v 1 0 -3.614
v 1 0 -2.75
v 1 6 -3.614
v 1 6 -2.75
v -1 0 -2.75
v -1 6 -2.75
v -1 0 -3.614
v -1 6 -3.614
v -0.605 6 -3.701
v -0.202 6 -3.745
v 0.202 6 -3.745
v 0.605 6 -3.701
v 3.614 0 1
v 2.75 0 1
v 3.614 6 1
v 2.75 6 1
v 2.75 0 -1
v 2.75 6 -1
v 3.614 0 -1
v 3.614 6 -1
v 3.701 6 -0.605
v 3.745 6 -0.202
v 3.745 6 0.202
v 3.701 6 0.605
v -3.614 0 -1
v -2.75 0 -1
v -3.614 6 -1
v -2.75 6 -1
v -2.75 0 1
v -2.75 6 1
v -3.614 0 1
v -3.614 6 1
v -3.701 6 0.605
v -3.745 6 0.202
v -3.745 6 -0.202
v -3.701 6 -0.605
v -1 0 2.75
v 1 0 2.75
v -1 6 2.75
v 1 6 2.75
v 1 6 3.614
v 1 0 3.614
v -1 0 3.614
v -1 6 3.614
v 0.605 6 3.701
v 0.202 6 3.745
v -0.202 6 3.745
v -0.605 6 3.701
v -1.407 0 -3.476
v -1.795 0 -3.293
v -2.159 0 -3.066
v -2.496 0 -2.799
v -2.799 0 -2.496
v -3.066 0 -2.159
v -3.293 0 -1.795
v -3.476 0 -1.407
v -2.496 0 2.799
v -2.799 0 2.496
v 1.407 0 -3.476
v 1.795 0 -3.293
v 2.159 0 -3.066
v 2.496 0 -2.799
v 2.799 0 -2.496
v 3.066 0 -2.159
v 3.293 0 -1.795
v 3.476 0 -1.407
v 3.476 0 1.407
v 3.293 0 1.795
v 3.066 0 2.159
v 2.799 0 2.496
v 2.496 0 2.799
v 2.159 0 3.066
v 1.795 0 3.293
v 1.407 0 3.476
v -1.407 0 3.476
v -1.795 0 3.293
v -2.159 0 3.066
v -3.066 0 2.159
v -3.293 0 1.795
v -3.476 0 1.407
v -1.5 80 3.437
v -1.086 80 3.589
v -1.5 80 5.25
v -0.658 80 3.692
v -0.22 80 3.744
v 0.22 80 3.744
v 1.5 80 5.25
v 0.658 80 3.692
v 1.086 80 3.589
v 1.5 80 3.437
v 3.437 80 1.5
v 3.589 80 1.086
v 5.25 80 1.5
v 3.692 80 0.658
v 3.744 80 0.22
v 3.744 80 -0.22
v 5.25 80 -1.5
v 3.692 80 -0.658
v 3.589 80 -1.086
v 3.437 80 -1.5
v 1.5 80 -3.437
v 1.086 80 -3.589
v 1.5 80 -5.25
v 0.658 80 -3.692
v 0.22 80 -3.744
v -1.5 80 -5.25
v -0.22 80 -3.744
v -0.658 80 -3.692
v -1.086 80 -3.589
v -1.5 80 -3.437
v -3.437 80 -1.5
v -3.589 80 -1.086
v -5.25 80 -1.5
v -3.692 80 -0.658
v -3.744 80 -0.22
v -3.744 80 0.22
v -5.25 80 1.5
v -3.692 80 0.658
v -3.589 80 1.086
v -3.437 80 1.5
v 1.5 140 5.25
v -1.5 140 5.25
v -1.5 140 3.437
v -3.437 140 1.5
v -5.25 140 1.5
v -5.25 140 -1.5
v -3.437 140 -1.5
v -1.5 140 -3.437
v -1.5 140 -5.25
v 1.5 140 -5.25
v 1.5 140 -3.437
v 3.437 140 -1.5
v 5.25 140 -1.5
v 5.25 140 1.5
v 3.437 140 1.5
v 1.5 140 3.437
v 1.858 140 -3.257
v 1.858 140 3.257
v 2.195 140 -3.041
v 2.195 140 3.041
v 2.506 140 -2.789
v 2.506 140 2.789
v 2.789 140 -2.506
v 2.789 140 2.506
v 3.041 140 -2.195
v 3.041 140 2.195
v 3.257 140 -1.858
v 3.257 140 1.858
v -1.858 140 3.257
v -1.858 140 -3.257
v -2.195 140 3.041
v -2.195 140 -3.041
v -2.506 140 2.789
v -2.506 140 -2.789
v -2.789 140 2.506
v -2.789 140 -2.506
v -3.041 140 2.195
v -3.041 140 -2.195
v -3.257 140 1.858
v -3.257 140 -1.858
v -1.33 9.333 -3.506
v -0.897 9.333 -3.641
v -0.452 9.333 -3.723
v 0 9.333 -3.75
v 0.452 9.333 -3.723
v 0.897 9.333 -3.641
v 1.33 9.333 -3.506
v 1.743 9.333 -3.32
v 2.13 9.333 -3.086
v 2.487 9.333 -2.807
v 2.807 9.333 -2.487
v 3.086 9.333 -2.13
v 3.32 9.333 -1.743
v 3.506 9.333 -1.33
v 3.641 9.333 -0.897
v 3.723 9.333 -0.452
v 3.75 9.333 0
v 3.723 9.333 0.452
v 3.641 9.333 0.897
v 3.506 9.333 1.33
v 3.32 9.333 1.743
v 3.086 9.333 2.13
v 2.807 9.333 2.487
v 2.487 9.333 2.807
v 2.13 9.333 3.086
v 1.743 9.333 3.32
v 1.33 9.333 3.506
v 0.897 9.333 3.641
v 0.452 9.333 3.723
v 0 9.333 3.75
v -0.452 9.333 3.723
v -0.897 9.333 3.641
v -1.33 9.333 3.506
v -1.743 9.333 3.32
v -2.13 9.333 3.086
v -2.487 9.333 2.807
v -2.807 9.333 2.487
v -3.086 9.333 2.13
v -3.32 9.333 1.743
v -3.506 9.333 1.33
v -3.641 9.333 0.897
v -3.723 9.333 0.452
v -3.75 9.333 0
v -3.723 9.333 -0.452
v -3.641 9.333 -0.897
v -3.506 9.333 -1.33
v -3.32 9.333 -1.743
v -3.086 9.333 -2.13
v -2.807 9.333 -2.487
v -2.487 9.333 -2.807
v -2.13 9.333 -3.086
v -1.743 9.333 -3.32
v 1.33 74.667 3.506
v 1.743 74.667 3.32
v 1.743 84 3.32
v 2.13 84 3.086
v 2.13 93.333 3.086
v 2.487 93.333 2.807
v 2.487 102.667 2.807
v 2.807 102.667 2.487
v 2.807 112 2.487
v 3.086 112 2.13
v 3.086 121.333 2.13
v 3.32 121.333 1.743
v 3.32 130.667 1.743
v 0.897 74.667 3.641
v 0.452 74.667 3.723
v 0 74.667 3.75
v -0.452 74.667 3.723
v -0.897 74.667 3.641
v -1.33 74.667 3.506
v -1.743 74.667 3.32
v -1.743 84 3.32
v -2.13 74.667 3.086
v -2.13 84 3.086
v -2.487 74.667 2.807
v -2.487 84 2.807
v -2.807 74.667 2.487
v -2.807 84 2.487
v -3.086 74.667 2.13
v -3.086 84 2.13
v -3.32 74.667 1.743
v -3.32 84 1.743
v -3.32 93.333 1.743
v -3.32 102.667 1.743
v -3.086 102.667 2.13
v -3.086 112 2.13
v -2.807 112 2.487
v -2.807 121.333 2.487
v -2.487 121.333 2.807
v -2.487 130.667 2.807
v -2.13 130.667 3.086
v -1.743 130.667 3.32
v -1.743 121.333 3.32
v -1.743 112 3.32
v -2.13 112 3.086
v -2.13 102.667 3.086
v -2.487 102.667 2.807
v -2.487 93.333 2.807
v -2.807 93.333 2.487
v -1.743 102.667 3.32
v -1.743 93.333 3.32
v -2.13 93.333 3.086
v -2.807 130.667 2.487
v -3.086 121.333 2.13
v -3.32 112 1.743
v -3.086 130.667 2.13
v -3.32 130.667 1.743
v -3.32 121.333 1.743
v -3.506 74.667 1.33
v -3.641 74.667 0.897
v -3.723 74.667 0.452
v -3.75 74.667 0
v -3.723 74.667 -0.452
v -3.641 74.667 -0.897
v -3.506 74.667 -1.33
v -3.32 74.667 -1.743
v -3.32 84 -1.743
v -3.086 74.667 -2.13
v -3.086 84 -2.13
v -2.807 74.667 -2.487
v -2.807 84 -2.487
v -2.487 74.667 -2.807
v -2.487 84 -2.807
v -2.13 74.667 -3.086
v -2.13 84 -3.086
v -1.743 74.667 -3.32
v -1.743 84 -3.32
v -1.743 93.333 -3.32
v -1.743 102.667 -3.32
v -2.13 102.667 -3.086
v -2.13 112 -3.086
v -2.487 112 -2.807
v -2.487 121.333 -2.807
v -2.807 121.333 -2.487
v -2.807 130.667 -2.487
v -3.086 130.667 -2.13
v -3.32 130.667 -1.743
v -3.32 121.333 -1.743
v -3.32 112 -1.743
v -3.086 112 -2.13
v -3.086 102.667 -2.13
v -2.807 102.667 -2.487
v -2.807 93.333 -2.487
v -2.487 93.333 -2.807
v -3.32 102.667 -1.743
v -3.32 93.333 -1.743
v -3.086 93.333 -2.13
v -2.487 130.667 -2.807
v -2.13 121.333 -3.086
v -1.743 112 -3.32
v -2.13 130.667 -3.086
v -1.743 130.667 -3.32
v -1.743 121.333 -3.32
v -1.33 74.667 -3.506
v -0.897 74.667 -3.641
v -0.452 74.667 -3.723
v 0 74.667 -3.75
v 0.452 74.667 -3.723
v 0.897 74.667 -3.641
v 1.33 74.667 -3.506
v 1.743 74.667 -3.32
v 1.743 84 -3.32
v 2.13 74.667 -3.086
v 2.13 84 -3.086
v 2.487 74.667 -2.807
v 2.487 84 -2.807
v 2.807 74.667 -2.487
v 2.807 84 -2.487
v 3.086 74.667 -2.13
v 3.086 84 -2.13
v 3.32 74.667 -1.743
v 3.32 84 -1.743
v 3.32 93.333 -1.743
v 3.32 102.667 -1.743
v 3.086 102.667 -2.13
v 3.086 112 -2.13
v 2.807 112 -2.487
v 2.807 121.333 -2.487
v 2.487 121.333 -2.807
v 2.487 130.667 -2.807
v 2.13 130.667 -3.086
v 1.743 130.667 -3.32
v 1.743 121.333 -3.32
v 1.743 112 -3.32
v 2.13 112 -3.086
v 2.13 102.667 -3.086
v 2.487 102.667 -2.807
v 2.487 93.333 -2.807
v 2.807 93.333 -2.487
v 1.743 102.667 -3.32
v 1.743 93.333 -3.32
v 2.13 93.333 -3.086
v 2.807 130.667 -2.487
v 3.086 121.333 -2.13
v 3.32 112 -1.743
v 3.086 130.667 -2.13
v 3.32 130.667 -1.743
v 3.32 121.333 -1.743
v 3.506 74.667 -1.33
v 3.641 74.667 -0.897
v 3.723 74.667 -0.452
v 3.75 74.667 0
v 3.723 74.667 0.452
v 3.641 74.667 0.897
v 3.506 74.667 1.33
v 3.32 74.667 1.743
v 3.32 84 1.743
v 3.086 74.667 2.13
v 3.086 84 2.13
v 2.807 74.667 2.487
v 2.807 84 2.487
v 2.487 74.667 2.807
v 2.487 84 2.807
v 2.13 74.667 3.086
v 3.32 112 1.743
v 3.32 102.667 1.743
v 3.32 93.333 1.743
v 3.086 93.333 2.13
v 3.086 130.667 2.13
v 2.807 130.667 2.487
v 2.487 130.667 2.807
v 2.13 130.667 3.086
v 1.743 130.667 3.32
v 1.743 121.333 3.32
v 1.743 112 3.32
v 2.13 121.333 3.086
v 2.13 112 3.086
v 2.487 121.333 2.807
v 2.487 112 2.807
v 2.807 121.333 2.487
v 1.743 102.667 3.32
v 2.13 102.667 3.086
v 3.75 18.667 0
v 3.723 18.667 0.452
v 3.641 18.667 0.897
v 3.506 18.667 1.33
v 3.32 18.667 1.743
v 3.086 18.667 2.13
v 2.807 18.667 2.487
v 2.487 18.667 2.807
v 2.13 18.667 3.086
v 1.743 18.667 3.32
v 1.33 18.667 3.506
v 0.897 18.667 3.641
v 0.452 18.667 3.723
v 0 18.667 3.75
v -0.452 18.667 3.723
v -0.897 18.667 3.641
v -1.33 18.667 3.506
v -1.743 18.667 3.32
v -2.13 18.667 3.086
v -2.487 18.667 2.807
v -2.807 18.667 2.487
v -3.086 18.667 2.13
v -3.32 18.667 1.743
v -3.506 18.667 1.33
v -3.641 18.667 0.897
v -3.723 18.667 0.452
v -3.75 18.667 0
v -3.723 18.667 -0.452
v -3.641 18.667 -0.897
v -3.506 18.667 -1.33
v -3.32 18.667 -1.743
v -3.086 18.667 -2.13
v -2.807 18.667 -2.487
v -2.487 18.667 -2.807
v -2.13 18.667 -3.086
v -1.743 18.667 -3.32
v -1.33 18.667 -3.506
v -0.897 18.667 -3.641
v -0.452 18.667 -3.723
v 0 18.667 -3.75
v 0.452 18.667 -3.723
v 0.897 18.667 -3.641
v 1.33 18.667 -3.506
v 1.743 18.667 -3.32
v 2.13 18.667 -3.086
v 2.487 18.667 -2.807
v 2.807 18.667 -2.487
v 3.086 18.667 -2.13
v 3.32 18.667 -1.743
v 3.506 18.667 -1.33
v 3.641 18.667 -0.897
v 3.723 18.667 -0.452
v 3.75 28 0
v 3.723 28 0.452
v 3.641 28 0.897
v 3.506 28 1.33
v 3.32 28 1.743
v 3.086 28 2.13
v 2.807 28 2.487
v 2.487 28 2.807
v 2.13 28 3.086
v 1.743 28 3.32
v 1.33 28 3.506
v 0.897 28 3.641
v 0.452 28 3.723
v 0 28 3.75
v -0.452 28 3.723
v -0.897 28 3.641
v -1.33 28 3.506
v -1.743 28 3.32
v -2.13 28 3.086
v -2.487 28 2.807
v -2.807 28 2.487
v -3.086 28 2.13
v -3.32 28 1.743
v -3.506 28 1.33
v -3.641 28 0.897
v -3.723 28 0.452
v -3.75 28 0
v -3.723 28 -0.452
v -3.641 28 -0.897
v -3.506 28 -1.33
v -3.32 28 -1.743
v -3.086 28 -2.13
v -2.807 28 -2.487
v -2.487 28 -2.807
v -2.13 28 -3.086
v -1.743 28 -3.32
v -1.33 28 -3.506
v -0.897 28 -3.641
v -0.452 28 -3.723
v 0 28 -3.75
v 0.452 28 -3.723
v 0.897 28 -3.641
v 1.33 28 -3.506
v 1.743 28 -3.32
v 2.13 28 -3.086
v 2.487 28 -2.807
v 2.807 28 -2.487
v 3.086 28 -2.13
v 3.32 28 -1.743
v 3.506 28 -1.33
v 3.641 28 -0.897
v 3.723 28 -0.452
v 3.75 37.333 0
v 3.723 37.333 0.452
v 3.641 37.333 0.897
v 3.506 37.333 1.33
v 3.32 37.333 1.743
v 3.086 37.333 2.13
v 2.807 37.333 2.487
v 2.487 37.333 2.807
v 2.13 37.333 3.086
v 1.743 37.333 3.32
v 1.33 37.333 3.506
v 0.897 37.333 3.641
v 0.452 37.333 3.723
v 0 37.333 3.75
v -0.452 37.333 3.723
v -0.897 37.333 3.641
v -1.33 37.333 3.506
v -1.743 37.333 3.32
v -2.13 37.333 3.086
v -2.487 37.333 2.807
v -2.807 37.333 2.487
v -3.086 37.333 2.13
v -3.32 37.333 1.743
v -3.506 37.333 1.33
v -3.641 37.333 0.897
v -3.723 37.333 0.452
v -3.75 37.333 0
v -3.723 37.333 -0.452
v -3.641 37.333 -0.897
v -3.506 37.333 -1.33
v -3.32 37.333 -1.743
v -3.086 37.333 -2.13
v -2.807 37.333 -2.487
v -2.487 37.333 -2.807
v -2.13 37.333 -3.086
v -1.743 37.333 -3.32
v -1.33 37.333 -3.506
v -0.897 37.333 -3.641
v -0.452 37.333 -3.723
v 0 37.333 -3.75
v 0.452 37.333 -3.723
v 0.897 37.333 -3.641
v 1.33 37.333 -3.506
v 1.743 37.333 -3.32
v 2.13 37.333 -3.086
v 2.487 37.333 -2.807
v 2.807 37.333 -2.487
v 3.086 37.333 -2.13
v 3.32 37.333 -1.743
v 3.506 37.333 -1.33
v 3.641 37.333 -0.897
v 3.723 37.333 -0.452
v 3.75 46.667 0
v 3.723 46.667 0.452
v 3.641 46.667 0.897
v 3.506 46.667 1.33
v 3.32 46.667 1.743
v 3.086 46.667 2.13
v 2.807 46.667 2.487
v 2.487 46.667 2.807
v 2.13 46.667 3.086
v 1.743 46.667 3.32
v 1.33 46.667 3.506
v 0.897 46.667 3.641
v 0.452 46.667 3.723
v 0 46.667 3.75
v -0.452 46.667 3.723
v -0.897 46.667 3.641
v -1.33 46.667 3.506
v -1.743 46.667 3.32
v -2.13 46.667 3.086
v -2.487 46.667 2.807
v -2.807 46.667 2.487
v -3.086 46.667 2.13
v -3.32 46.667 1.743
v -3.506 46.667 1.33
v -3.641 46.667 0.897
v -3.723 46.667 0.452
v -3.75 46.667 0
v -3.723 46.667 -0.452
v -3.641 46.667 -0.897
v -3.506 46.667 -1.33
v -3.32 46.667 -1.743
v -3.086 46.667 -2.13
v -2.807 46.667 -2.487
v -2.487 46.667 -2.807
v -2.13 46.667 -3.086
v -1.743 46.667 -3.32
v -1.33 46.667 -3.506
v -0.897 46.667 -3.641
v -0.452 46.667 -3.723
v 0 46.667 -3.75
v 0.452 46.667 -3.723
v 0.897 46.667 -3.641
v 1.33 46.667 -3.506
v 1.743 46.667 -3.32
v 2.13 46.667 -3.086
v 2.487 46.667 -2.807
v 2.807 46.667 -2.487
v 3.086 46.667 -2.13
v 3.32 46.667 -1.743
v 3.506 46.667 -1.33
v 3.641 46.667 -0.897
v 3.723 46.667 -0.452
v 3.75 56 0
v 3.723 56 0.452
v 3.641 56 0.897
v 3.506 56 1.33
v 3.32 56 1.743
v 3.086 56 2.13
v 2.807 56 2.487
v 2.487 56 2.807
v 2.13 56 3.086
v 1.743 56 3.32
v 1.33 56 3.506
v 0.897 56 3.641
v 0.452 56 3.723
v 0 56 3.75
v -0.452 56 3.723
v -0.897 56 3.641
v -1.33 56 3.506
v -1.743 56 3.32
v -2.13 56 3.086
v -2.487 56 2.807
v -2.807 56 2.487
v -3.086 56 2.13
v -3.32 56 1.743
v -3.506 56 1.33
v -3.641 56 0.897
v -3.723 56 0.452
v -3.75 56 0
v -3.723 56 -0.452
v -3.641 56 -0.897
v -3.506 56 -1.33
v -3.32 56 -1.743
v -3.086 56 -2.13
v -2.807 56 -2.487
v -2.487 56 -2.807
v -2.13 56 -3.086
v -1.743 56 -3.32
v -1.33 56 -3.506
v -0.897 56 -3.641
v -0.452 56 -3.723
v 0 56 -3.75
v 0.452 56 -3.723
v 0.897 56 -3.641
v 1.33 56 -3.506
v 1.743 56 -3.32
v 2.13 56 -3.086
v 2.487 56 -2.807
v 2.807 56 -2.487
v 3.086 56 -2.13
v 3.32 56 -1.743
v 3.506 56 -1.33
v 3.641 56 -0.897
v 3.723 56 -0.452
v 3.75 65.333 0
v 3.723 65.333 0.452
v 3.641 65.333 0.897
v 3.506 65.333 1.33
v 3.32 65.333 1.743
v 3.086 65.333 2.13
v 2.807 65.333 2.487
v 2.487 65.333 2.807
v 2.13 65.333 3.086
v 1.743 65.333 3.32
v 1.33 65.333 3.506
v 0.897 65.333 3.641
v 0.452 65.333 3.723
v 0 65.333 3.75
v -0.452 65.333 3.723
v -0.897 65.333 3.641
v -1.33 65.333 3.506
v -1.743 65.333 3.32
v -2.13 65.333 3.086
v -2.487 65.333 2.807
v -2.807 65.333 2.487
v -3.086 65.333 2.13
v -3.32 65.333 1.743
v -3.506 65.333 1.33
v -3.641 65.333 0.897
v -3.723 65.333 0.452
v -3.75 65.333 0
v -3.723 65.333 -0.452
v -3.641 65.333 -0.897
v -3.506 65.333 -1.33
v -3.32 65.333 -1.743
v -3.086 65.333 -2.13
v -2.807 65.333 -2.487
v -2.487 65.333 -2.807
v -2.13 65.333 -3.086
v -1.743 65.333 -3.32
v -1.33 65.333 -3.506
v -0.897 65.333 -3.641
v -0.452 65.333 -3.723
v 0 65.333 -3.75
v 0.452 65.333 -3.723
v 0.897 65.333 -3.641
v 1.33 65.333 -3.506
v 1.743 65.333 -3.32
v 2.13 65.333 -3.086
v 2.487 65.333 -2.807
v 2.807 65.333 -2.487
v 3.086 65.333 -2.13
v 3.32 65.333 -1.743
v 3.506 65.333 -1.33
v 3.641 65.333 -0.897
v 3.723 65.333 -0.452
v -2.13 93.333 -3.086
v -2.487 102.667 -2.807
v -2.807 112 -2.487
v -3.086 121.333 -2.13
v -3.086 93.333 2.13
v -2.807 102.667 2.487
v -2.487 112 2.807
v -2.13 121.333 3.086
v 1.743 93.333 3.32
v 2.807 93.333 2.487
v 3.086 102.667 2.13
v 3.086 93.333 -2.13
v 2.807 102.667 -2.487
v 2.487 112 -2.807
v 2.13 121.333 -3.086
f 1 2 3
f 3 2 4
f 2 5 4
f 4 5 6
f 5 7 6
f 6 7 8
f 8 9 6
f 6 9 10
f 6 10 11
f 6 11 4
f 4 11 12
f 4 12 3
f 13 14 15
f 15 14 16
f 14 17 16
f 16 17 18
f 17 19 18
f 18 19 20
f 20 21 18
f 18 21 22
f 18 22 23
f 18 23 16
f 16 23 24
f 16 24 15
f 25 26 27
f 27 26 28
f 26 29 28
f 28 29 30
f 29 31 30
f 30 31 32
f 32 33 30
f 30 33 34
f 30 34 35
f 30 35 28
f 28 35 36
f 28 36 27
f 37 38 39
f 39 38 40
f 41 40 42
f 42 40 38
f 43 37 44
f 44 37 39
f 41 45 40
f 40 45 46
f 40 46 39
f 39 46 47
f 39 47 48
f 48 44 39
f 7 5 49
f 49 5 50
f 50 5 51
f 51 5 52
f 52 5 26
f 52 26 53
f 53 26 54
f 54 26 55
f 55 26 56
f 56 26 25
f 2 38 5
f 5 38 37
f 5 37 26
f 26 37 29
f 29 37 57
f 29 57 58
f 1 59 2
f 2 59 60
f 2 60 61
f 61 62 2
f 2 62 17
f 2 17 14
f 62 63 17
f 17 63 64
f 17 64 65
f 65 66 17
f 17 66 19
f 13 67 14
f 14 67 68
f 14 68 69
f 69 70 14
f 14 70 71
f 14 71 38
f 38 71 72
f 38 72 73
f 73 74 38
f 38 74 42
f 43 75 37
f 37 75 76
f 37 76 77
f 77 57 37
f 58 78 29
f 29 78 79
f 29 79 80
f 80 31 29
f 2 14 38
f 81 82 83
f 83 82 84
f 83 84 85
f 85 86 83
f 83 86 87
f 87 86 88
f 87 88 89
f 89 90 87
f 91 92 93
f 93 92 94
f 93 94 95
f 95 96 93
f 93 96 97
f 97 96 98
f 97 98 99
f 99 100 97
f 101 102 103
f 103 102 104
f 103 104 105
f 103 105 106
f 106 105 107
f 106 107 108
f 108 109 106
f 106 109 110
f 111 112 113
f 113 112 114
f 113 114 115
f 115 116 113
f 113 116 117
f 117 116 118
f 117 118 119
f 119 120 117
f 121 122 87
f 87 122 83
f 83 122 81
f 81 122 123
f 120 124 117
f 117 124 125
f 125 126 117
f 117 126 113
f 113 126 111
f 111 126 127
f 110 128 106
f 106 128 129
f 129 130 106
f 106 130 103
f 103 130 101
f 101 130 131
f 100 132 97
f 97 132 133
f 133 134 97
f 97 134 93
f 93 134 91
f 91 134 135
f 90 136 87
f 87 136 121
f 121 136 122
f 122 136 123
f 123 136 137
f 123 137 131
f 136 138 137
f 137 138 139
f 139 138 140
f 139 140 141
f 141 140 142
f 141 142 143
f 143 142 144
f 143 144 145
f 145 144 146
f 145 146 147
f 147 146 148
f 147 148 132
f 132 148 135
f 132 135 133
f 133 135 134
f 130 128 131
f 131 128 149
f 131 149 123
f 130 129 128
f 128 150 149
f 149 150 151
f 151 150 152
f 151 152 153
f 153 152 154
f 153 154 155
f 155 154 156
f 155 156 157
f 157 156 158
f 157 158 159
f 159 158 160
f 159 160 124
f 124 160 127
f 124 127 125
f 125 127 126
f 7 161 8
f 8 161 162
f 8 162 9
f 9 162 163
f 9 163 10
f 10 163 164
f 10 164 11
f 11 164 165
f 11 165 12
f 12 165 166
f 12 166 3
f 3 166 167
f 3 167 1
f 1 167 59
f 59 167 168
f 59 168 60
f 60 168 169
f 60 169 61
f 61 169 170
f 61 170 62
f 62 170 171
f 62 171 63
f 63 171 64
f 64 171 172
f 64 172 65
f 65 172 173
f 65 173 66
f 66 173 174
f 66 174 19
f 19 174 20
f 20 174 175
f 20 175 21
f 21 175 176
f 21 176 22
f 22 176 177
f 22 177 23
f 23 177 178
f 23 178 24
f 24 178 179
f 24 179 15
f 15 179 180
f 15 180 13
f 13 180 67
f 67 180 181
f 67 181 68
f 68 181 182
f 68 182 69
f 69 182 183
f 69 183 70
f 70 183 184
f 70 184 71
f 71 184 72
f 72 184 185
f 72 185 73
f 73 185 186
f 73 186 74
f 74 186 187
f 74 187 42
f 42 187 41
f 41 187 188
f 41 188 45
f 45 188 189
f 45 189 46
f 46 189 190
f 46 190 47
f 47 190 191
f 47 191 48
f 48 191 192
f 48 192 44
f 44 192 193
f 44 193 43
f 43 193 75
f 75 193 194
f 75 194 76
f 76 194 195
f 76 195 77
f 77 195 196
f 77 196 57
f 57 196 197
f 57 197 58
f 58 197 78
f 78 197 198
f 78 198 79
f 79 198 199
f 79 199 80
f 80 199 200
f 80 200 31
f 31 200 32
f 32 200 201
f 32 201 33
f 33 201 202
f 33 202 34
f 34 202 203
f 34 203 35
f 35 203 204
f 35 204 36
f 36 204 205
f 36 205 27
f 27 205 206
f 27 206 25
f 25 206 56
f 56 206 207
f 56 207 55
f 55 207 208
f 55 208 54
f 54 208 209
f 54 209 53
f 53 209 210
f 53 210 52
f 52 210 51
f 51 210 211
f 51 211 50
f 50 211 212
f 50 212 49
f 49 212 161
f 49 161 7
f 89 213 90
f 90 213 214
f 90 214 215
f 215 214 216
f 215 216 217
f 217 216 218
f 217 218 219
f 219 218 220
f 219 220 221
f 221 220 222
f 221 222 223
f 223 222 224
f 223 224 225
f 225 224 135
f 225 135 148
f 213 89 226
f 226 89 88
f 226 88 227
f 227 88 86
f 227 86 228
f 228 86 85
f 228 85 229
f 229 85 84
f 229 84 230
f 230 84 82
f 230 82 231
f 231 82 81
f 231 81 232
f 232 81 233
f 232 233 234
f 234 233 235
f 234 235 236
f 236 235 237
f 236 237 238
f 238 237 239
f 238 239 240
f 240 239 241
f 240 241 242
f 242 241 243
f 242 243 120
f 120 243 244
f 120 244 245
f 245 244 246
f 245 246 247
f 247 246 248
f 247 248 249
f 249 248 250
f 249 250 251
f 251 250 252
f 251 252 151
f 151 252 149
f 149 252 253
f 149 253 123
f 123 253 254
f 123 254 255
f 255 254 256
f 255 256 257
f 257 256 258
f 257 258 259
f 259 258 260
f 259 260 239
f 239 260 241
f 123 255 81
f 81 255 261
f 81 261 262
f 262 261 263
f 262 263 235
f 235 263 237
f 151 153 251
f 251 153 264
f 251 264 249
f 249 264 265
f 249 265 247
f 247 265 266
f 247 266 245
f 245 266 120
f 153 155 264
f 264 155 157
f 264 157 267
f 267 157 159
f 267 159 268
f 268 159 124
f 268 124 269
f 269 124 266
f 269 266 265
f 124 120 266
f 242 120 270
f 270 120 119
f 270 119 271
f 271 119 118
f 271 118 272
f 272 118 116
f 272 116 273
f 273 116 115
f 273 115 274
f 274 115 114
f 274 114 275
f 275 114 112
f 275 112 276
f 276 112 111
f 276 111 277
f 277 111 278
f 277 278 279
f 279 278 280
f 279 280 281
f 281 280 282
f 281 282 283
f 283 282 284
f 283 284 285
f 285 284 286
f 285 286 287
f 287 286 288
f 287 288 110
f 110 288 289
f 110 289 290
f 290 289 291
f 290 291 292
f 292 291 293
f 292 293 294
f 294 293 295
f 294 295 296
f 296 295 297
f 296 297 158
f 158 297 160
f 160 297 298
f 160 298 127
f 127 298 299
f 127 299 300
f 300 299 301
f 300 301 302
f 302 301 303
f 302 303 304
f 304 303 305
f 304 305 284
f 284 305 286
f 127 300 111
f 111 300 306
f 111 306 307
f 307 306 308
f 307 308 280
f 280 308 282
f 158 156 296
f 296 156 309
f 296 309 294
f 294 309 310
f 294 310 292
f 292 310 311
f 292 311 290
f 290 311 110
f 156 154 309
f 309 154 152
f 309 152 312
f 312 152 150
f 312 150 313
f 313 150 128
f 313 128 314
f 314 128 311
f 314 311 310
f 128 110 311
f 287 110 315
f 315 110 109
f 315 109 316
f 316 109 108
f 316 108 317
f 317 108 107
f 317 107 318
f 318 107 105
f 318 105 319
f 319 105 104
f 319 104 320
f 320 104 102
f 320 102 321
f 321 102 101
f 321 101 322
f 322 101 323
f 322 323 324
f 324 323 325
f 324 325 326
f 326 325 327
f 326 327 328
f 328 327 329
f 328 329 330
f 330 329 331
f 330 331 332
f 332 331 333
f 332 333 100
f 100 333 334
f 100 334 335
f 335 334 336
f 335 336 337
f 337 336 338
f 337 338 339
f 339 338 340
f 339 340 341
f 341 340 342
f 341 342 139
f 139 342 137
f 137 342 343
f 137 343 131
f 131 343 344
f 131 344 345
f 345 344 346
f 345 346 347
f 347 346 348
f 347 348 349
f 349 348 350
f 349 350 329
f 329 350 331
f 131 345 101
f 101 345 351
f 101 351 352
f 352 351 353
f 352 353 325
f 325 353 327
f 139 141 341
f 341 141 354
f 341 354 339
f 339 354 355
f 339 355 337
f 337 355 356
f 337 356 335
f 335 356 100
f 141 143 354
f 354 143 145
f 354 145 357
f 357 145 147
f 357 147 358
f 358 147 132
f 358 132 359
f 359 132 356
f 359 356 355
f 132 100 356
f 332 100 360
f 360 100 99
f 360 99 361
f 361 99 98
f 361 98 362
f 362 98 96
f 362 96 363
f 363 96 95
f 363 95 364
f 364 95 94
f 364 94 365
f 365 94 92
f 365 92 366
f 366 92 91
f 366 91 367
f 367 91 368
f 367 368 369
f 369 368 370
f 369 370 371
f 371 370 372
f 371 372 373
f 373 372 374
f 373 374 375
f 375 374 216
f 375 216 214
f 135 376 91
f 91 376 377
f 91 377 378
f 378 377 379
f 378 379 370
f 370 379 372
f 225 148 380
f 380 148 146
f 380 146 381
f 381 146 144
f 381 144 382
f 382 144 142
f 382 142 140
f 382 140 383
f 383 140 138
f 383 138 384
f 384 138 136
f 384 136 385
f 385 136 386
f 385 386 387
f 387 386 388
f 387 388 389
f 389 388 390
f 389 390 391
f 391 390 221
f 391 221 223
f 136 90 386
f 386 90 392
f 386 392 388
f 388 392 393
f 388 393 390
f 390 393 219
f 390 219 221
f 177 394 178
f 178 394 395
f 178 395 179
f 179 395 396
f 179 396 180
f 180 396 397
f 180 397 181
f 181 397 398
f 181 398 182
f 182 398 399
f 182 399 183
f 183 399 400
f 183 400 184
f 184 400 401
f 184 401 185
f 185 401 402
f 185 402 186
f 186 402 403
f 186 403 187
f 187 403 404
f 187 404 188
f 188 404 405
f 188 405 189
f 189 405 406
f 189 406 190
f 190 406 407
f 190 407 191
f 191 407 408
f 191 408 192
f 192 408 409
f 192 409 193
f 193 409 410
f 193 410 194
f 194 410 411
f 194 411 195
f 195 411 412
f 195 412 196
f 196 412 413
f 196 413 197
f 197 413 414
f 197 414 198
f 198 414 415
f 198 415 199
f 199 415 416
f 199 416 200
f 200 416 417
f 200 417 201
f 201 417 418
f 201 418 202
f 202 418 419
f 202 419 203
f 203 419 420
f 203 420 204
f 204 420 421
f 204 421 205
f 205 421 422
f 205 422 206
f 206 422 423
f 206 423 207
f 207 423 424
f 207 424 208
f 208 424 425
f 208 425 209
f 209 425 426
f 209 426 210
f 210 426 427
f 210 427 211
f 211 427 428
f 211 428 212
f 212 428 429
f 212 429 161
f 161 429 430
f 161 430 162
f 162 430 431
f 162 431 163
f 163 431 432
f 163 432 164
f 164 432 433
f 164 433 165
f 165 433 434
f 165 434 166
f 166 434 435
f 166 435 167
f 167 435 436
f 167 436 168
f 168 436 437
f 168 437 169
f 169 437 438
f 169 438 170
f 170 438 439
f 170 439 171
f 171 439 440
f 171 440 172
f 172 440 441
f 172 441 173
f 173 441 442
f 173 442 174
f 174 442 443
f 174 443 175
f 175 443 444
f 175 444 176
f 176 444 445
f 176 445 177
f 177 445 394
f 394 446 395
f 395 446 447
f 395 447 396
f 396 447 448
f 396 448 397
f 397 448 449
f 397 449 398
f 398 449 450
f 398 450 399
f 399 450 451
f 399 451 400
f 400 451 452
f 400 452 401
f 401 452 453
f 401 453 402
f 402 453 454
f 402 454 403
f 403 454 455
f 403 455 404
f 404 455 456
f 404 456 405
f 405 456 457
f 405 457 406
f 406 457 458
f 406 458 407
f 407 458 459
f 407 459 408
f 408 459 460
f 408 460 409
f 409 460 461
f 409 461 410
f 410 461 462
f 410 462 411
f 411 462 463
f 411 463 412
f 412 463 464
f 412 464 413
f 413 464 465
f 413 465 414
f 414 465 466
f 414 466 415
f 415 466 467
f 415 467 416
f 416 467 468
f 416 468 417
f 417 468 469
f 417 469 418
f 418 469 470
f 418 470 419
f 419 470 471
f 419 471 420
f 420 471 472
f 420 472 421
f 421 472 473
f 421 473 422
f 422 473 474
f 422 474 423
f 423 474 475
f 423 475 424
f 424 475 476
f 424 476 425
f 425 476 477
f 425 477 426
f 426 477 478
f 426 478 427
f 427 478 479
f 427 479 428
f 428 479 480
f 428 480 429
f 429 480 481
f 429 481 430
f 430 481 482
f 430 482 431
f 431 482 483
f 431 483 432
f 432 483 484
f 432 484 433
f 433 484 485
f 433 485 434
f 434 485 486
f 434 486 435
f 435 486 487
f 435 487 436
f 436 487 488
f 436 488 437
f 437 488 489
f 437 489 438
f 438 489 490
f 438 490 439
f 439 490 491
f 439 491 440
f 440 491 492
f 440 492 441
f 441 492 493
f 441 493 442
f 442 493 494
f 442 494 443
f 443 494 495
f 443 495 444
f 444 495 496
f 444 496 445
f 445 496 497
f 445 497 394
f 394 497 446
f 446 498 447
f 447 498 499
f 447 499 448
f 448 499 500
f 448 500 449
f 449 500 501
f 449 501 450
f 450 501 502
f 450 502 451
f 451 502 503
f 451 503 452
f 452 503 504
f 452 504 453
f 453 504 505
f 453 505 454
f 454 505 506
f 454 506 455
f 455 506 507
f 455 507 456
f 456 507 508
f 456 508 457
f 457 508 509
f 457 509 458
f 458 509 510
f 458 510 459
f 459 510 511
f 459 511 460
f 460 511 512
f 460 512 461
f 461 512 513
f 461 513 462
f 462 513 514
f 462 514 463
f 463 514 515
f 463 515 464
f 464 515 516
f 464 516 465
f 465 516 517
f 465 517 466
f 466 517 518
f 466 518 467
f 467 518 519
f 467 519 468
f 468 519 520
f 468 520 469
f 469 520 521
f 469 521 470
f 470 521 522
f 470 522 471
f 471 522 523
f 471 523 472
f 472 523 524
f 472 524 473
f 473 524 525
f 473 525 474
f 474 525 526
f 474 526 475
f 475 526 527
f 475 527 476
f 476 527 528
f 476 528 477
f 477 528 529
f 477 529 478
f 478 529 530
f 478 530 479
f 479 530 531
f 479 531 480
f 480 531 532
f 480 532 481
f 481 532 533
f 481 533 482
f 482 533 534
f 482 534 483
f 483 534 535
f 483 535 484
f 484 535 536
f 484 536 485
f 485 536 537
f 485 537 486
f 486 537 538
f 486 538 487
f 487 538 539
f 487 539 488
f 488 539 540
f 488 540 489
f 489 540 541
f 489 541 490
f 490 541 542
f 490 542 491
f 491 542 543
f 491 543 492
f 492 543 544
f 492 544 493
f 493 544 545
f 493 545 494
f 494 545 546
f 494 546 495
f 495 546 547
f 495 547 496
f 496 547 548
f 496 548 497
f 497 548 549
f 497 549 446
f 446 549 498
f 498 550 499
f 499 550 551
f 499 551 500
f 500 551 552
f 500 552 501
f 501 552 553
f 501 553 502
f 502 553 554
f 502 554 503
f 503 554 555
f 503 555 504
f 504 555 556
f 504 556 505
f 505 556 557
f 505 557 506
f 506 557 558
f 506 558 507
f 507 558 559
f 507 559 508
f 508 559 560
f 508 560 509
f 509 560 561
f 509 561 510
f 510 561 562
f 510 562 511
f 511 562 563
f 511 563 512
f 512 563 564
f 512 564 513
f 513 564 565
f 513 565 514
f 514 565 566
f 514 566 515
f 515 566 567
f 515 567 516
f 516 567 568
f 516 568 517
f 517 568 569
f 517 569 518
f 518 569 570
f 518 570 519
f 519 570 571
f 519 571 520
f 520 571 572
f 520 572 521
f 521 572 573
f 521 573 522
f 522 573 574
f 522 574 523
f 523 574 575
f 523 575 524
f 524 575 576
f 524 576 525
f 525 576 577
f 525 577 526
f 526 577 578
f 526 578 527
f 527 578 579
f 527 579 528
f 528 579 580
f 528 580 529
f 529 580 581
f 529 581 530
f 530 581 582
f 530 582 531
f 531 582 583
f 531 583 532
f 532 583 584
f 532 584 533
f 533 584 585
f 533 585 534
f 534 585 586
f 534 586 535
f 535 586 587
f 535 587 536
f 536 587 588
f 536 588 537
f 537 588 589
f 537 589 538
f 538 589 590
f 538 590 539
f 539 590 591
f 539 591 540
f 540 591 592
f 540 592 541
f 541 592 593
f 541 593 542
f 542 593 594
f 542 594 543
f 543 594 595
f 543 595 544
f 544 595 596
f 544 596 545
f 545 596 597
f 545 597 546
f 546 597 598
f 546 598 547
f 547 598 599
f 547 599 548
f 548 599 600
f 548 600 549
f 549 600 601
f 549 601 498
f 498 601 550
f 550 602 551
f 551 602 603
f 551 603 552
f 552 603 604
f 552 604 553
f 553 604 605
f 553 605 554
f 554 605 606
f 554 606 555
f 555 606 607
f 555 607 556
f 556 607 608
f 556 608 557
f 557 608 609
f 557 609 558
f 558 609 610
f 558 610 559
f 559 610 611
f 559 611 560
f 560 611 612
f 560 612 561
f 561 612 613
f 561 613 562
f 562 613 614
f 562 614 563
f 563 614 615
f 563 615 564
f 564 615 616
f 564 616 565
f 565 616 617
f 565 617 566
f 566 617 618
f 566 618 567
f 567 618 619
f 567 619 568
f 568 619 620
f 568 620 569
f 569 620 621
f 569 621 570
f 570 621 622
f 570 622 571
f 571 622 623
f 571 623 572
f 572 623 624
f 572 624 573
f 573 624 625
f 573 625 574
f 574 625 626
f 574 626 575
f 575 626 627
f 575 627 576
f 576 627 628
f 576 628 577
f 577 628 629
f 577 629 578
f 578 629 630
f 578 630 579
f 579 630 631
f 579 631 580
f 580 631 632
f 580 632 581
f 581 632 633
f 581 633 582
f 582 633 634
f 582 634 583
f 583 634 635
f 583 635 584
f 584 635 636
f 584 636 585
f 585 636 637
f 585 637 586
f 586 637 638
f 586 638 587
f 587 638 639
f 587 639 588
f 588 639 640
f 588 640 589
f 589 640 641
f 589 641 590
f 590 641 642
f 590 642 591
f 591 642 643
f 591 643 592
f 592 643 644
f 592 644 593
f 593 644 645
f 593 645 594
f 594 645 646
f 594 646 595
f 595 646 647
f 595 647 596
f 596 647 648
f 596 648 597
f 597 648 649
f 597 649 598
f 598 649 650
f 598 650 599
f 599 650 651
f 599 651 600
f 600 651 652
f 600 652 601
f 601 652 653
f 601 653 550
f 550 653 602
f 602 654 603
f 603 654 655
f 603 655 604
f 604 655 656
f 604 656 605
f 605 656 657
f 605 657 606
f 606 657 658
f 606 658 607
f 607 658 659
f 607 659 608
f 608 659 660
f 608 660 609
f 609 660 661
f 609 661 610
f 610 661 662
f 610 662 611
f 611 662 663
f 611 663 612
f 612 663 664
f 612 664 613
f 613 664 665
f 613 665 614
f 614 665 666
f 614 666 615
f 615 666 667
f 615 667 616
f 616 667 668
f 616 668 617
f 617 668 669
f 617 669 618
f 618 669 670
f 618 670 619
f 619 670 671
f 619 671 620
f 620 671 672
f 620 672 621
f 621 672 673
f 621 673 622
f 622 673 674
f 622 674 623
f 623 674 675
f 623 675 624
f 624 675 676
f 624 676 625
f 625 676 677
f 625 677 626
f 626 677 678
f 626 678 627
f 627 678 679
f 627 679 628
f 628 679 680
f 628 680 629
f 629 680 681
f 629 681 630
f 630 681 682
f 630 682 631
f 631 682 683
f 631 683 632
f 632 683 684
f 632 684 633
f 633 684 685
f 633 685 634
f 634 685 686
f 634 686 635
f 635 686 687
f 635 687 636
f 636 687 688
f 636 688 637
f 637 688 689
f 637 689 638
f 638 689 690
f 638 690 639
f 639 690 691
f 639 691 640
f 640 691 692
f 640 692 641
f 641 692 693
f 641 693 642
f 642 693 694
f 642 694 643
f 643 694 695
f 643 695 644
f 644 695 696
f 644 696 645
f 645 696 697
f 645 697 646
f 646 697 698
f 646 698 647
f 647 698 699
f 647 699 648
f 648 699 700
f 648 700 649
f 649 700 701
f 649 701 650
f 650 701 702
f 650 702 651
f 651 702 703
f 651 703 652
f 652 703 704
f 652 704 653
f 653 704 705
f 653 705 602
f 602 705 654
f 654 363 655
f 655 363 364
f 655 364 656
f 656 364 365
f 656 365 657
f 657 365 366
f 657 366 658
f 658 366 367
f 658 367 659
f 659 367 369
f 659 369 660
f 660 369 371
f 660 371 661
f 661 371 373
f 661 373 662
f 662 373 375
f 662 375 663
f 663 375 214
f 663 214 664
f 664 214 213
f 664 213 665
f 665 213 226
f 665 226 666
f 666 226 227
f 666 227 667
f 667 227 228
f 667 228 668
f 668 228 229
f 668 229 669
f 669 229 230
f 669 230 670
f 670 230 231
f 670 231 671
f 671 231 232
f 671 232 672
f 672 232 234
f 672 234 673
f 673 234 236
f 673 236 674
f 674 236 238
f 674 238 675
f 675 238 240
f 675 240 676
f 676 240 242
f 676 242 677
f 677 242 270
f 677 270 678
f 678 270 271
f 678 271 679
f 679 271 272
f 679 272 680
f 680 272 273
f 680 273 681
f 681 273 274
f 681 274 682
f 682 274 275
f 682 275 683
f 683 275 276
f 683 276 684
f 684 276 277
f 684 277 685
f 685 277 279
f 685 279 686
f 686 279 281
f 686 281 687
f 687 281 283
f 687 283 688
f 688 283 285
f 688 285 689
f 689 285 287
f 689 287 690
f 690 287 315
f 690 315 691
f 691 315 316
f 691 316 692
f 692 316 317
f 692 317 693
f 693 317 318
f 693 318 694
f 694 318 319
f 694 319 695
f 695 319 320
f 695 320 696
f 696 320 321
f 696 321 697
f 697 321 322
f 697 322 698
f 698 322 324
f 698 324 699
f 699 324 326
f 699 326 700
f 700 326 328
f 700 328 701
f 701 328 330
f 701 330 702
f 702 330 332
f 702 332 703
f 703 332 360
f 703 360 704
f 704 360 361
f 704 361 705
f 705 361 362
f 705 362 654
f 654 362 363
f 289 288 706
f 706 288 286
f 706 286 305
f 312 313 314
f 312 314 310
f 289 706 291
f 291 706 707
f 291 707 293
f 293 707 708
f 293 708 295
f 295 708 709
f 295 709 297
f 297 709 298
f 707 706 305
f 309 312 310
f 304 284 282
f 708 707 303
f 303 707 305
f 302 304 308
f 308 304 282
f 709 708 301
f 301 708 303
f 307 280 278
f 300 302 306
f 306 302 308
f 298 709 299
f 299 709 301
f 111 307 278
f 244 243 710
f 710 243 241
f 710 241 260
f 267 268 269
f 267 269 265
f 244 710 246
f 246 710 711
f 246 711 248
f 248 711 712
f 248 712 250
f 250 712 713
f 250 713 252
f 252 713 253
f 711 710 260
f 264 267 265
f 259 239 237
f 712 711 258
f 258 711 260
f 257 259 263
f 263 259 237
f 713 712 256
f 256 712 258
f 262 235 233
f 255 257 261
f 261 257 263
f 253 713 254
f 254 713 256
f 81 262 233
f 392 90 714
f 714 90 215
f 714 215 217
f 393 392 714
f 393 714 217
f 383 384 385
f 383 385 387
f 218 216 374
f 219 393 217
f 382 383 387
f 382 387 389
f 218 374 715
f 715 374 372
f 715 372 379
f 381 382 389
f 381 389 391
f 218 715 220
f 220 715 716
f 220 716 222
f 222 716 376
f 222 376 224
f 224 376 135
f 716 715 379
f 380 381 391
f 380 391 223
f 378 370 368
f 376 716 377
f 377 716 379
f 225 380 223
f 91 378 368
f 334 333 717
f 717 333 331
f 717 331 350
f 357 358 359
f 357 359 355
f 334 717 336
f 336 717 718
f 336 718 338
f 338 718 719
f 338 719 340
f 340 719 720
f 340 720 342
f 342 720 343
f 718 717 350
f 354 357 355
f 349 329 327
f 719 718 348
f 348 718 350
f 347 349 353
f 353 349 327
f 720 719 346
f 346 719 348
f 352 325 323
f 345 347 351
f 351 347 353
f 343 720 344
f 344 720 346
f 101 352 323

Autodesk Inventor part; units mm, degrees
ref_plane "YZ Plane" through (0, 0, 0) normal (1, 0, 0) x (0, 1, 0)
ref_plane "XZ Plane" through (0, 0, 0) normal (0, 1, 0) x (-1, 0, 0)
ref_plane "XY Plane" through (0, 0, 0) normal (0, 0, 1) x (1, 0, 0)
sketch "Sketch7" plane through (0, 0, 0) normal (0, 1, 0) x (-1, 0, 0)
  circle A0 centre (0, 0) radius 3.75
  dimension "d71" = 7.5
extrude "Extrusion7" add sketch "Sketch7" along normal blind 130
sketch "Sketch8" plane through (0, 130, 0) normal (0, 1, 0) x (1, 0, 0)
  line L0 (-5.25, -1.5) -> (-2.25, -1.5)
  line L1 (-2.25, -1.5) -> (-2.25, 1.5)
  line L2 (-2.25, 1.5) -> (-5.25, 1.5)
  line L3 (-5.25, 1.5) -> (-5.25, -1.5)
  circle A0 centre (0, 0) radius 3.75 projected
  line L4 (-5.25, -1.5) -> (-2.25, 1.5) construction
  line L5 (-2.25, -1.5) -> (-5.25, 1.5) construction
  line L6 (1.5, 2.25) -> (-1.5, 2.25)
  line L7 (-1.5, 2.25) -> (-1.5, 5.25)
  line L8 (-1.5, 5.25) -> (1.5, 5.25)
  line L9 (1.5, 5.25) -> (1.5, 2.25)
  line L10 (1.5, 2.25) -> (-1.5, 5.25) construction
  line L11 (-1.5, 2.25) -> (1.5, 5.25) construction
  line L12 (2.25, -1.5) -> (5.25, -1.5)
  line L13 (5.25, -1.5) -> (5.25, 1.5)
  line L14 (5.25, 1.5) -> (2.25, 1.5)
  line L15 (2.25, 1.5) -> (2.25, -1.5)
  line L16 (2.25, -1.5) -> (5.25, 1.5) construction
  line L17 (5.25, -1.5) -> (2.25, 1.5) construction
  line L18 (-1.5, -5.25) -> (1.5, -5.25)
  line L19 (1.5, -5.25) -> (1.5, -2.25)
  line L20 (1.5, -2.25) -> (-1.5, -2.25)
  line L21 (-1.5, -2.25) -> (-1.5, -5.25)
  line L22 (-1.5, -5.25) -> (1.5, -2.25) construction
  line L23 (1.5, -5.25) -> (-1.5, -2.25) construction
  point P0 (-3.75, 0)
  point P1 (0, 3.75)
  point P2 (3.75, 0)
  point P3 (0, -3.75)
  point P4 (3.4369, 1.5)
  point P5 (3.4369, -1.5)
  point P6 (-1.5, 3.4369)
  point P7 (1.5, 3.4369)
  point P8 (-3.4369, -1.5)
  point P9 (-3.4369, 1.5)
  point P10 (1.5, -3.4369)
  point P11 (-1.5, -3.4369)
  dimension "d74" = 3
  dimension "d75" = 3
  dimension "d76" = 3
  dimension "d77" = 3
  dimension "d78" = 3
  dimension "d79" = 3
  dimension "d80" = 3
  dimension "d81" = 3
extrude "Extrusion8" add sketch "Sketch8" along normal blind 10 and the other way blind 50
sketch "Sketch9" plane through (0, 0, 0) normal (0, -1, 0) x (1, 0, 0)
  line L0 (4.75, 1) -> (2.75, 1)
  line L1 (2.75, 1) -> (2.75, -1)
  line L2 (2.75, -1) -> (4.75, -1)
  line L3 (4.75, -1) -> (4.75, 1)
  arc A0 (3.4369, -1.5) -> (3.4369, 1.5) centre (0, 0) ccw projected
  line L4 (4.75, 1) -> (2.75, -1) construction
  line L5 (2.75, 1) -> (4.75, -1) construction
  line L6 (1, -2.75) -> (-1, -2.75)
  line L7 (-1, -2.75) -> (-1, -4.75)
  line L8 (-1, -4.75) -> (1, -4.75)
  line L9 (1, -4.75) -> (1, -2.75)
  arc A1 (-1.5, -3.4369) -> (1.5, -3.4369) centre (0, 0) ccw projected
  line L10 (1, -2.75) -> (-1, -4.75) construction
  line L11 (-1, -2.75) -> (1, -4.75) construction
  line L12 (-2.75, 1) -> (-4.75, 1)
  line L13 (-4.75, 1) -> (-4.75, -1)
  line L14 (-4.75, -1) -> (-2.75, -1)
  line L15 (-2.75, -1) -> (-2.75, 1)
  arc A2 (-3.4369, 1.5) -> (-3.4369, -1.5) centre (0, 0) ccw projected
  line L16 (-2.75, 1) -> (-4.75, -1) construction
  line L17 (-4.75, 1) -> (-2.75, -1) construction
  line L18 (1, 4.75) -> (-1, 4.75)
  line L19 (-1, 4.75) -> (-1, 2.75)
  line L20 (-1, 2.75) -> (1, 2.75)
  line L21 (1, 2.75) -> (1, 4.75)
  line L22 (1, 4.75) -> (-1, 2.75) construction
  line L23 (-1, 4.75) -> (1, 2.75) construction
  point P0 (3.75, 0)
  point P1 (0, -3.75)
  point P2 (-3.75, 0)
  point P3 (0, 3.75)
  point P4 (-3.6142, 1)
  point P5 (-3.6142, -1)
  point P6 (-1, -3.6142)
  point P7 (1, -3.6142)
  point P8 (3.6142, -1)
  point P9 (3.6142, 1)
  dimension "d86" = 2
  dimension "d87" = 2
  dimension "d88" = 2
  dimension "d89" = 2
  dimension "d90" = 2
  dimension "d91" = 2
  dimension "d92" = 2
  dimension "d93" = 2
extrude "Extrusion9" cut sketch "Sketch9" against normal blind 6 contours A0 L2 L1 L0 | L9 A1 L7 L6 | L15 L14 A2 L12 | L21 L20 L19 L18
properties part number "Lower Arm"
